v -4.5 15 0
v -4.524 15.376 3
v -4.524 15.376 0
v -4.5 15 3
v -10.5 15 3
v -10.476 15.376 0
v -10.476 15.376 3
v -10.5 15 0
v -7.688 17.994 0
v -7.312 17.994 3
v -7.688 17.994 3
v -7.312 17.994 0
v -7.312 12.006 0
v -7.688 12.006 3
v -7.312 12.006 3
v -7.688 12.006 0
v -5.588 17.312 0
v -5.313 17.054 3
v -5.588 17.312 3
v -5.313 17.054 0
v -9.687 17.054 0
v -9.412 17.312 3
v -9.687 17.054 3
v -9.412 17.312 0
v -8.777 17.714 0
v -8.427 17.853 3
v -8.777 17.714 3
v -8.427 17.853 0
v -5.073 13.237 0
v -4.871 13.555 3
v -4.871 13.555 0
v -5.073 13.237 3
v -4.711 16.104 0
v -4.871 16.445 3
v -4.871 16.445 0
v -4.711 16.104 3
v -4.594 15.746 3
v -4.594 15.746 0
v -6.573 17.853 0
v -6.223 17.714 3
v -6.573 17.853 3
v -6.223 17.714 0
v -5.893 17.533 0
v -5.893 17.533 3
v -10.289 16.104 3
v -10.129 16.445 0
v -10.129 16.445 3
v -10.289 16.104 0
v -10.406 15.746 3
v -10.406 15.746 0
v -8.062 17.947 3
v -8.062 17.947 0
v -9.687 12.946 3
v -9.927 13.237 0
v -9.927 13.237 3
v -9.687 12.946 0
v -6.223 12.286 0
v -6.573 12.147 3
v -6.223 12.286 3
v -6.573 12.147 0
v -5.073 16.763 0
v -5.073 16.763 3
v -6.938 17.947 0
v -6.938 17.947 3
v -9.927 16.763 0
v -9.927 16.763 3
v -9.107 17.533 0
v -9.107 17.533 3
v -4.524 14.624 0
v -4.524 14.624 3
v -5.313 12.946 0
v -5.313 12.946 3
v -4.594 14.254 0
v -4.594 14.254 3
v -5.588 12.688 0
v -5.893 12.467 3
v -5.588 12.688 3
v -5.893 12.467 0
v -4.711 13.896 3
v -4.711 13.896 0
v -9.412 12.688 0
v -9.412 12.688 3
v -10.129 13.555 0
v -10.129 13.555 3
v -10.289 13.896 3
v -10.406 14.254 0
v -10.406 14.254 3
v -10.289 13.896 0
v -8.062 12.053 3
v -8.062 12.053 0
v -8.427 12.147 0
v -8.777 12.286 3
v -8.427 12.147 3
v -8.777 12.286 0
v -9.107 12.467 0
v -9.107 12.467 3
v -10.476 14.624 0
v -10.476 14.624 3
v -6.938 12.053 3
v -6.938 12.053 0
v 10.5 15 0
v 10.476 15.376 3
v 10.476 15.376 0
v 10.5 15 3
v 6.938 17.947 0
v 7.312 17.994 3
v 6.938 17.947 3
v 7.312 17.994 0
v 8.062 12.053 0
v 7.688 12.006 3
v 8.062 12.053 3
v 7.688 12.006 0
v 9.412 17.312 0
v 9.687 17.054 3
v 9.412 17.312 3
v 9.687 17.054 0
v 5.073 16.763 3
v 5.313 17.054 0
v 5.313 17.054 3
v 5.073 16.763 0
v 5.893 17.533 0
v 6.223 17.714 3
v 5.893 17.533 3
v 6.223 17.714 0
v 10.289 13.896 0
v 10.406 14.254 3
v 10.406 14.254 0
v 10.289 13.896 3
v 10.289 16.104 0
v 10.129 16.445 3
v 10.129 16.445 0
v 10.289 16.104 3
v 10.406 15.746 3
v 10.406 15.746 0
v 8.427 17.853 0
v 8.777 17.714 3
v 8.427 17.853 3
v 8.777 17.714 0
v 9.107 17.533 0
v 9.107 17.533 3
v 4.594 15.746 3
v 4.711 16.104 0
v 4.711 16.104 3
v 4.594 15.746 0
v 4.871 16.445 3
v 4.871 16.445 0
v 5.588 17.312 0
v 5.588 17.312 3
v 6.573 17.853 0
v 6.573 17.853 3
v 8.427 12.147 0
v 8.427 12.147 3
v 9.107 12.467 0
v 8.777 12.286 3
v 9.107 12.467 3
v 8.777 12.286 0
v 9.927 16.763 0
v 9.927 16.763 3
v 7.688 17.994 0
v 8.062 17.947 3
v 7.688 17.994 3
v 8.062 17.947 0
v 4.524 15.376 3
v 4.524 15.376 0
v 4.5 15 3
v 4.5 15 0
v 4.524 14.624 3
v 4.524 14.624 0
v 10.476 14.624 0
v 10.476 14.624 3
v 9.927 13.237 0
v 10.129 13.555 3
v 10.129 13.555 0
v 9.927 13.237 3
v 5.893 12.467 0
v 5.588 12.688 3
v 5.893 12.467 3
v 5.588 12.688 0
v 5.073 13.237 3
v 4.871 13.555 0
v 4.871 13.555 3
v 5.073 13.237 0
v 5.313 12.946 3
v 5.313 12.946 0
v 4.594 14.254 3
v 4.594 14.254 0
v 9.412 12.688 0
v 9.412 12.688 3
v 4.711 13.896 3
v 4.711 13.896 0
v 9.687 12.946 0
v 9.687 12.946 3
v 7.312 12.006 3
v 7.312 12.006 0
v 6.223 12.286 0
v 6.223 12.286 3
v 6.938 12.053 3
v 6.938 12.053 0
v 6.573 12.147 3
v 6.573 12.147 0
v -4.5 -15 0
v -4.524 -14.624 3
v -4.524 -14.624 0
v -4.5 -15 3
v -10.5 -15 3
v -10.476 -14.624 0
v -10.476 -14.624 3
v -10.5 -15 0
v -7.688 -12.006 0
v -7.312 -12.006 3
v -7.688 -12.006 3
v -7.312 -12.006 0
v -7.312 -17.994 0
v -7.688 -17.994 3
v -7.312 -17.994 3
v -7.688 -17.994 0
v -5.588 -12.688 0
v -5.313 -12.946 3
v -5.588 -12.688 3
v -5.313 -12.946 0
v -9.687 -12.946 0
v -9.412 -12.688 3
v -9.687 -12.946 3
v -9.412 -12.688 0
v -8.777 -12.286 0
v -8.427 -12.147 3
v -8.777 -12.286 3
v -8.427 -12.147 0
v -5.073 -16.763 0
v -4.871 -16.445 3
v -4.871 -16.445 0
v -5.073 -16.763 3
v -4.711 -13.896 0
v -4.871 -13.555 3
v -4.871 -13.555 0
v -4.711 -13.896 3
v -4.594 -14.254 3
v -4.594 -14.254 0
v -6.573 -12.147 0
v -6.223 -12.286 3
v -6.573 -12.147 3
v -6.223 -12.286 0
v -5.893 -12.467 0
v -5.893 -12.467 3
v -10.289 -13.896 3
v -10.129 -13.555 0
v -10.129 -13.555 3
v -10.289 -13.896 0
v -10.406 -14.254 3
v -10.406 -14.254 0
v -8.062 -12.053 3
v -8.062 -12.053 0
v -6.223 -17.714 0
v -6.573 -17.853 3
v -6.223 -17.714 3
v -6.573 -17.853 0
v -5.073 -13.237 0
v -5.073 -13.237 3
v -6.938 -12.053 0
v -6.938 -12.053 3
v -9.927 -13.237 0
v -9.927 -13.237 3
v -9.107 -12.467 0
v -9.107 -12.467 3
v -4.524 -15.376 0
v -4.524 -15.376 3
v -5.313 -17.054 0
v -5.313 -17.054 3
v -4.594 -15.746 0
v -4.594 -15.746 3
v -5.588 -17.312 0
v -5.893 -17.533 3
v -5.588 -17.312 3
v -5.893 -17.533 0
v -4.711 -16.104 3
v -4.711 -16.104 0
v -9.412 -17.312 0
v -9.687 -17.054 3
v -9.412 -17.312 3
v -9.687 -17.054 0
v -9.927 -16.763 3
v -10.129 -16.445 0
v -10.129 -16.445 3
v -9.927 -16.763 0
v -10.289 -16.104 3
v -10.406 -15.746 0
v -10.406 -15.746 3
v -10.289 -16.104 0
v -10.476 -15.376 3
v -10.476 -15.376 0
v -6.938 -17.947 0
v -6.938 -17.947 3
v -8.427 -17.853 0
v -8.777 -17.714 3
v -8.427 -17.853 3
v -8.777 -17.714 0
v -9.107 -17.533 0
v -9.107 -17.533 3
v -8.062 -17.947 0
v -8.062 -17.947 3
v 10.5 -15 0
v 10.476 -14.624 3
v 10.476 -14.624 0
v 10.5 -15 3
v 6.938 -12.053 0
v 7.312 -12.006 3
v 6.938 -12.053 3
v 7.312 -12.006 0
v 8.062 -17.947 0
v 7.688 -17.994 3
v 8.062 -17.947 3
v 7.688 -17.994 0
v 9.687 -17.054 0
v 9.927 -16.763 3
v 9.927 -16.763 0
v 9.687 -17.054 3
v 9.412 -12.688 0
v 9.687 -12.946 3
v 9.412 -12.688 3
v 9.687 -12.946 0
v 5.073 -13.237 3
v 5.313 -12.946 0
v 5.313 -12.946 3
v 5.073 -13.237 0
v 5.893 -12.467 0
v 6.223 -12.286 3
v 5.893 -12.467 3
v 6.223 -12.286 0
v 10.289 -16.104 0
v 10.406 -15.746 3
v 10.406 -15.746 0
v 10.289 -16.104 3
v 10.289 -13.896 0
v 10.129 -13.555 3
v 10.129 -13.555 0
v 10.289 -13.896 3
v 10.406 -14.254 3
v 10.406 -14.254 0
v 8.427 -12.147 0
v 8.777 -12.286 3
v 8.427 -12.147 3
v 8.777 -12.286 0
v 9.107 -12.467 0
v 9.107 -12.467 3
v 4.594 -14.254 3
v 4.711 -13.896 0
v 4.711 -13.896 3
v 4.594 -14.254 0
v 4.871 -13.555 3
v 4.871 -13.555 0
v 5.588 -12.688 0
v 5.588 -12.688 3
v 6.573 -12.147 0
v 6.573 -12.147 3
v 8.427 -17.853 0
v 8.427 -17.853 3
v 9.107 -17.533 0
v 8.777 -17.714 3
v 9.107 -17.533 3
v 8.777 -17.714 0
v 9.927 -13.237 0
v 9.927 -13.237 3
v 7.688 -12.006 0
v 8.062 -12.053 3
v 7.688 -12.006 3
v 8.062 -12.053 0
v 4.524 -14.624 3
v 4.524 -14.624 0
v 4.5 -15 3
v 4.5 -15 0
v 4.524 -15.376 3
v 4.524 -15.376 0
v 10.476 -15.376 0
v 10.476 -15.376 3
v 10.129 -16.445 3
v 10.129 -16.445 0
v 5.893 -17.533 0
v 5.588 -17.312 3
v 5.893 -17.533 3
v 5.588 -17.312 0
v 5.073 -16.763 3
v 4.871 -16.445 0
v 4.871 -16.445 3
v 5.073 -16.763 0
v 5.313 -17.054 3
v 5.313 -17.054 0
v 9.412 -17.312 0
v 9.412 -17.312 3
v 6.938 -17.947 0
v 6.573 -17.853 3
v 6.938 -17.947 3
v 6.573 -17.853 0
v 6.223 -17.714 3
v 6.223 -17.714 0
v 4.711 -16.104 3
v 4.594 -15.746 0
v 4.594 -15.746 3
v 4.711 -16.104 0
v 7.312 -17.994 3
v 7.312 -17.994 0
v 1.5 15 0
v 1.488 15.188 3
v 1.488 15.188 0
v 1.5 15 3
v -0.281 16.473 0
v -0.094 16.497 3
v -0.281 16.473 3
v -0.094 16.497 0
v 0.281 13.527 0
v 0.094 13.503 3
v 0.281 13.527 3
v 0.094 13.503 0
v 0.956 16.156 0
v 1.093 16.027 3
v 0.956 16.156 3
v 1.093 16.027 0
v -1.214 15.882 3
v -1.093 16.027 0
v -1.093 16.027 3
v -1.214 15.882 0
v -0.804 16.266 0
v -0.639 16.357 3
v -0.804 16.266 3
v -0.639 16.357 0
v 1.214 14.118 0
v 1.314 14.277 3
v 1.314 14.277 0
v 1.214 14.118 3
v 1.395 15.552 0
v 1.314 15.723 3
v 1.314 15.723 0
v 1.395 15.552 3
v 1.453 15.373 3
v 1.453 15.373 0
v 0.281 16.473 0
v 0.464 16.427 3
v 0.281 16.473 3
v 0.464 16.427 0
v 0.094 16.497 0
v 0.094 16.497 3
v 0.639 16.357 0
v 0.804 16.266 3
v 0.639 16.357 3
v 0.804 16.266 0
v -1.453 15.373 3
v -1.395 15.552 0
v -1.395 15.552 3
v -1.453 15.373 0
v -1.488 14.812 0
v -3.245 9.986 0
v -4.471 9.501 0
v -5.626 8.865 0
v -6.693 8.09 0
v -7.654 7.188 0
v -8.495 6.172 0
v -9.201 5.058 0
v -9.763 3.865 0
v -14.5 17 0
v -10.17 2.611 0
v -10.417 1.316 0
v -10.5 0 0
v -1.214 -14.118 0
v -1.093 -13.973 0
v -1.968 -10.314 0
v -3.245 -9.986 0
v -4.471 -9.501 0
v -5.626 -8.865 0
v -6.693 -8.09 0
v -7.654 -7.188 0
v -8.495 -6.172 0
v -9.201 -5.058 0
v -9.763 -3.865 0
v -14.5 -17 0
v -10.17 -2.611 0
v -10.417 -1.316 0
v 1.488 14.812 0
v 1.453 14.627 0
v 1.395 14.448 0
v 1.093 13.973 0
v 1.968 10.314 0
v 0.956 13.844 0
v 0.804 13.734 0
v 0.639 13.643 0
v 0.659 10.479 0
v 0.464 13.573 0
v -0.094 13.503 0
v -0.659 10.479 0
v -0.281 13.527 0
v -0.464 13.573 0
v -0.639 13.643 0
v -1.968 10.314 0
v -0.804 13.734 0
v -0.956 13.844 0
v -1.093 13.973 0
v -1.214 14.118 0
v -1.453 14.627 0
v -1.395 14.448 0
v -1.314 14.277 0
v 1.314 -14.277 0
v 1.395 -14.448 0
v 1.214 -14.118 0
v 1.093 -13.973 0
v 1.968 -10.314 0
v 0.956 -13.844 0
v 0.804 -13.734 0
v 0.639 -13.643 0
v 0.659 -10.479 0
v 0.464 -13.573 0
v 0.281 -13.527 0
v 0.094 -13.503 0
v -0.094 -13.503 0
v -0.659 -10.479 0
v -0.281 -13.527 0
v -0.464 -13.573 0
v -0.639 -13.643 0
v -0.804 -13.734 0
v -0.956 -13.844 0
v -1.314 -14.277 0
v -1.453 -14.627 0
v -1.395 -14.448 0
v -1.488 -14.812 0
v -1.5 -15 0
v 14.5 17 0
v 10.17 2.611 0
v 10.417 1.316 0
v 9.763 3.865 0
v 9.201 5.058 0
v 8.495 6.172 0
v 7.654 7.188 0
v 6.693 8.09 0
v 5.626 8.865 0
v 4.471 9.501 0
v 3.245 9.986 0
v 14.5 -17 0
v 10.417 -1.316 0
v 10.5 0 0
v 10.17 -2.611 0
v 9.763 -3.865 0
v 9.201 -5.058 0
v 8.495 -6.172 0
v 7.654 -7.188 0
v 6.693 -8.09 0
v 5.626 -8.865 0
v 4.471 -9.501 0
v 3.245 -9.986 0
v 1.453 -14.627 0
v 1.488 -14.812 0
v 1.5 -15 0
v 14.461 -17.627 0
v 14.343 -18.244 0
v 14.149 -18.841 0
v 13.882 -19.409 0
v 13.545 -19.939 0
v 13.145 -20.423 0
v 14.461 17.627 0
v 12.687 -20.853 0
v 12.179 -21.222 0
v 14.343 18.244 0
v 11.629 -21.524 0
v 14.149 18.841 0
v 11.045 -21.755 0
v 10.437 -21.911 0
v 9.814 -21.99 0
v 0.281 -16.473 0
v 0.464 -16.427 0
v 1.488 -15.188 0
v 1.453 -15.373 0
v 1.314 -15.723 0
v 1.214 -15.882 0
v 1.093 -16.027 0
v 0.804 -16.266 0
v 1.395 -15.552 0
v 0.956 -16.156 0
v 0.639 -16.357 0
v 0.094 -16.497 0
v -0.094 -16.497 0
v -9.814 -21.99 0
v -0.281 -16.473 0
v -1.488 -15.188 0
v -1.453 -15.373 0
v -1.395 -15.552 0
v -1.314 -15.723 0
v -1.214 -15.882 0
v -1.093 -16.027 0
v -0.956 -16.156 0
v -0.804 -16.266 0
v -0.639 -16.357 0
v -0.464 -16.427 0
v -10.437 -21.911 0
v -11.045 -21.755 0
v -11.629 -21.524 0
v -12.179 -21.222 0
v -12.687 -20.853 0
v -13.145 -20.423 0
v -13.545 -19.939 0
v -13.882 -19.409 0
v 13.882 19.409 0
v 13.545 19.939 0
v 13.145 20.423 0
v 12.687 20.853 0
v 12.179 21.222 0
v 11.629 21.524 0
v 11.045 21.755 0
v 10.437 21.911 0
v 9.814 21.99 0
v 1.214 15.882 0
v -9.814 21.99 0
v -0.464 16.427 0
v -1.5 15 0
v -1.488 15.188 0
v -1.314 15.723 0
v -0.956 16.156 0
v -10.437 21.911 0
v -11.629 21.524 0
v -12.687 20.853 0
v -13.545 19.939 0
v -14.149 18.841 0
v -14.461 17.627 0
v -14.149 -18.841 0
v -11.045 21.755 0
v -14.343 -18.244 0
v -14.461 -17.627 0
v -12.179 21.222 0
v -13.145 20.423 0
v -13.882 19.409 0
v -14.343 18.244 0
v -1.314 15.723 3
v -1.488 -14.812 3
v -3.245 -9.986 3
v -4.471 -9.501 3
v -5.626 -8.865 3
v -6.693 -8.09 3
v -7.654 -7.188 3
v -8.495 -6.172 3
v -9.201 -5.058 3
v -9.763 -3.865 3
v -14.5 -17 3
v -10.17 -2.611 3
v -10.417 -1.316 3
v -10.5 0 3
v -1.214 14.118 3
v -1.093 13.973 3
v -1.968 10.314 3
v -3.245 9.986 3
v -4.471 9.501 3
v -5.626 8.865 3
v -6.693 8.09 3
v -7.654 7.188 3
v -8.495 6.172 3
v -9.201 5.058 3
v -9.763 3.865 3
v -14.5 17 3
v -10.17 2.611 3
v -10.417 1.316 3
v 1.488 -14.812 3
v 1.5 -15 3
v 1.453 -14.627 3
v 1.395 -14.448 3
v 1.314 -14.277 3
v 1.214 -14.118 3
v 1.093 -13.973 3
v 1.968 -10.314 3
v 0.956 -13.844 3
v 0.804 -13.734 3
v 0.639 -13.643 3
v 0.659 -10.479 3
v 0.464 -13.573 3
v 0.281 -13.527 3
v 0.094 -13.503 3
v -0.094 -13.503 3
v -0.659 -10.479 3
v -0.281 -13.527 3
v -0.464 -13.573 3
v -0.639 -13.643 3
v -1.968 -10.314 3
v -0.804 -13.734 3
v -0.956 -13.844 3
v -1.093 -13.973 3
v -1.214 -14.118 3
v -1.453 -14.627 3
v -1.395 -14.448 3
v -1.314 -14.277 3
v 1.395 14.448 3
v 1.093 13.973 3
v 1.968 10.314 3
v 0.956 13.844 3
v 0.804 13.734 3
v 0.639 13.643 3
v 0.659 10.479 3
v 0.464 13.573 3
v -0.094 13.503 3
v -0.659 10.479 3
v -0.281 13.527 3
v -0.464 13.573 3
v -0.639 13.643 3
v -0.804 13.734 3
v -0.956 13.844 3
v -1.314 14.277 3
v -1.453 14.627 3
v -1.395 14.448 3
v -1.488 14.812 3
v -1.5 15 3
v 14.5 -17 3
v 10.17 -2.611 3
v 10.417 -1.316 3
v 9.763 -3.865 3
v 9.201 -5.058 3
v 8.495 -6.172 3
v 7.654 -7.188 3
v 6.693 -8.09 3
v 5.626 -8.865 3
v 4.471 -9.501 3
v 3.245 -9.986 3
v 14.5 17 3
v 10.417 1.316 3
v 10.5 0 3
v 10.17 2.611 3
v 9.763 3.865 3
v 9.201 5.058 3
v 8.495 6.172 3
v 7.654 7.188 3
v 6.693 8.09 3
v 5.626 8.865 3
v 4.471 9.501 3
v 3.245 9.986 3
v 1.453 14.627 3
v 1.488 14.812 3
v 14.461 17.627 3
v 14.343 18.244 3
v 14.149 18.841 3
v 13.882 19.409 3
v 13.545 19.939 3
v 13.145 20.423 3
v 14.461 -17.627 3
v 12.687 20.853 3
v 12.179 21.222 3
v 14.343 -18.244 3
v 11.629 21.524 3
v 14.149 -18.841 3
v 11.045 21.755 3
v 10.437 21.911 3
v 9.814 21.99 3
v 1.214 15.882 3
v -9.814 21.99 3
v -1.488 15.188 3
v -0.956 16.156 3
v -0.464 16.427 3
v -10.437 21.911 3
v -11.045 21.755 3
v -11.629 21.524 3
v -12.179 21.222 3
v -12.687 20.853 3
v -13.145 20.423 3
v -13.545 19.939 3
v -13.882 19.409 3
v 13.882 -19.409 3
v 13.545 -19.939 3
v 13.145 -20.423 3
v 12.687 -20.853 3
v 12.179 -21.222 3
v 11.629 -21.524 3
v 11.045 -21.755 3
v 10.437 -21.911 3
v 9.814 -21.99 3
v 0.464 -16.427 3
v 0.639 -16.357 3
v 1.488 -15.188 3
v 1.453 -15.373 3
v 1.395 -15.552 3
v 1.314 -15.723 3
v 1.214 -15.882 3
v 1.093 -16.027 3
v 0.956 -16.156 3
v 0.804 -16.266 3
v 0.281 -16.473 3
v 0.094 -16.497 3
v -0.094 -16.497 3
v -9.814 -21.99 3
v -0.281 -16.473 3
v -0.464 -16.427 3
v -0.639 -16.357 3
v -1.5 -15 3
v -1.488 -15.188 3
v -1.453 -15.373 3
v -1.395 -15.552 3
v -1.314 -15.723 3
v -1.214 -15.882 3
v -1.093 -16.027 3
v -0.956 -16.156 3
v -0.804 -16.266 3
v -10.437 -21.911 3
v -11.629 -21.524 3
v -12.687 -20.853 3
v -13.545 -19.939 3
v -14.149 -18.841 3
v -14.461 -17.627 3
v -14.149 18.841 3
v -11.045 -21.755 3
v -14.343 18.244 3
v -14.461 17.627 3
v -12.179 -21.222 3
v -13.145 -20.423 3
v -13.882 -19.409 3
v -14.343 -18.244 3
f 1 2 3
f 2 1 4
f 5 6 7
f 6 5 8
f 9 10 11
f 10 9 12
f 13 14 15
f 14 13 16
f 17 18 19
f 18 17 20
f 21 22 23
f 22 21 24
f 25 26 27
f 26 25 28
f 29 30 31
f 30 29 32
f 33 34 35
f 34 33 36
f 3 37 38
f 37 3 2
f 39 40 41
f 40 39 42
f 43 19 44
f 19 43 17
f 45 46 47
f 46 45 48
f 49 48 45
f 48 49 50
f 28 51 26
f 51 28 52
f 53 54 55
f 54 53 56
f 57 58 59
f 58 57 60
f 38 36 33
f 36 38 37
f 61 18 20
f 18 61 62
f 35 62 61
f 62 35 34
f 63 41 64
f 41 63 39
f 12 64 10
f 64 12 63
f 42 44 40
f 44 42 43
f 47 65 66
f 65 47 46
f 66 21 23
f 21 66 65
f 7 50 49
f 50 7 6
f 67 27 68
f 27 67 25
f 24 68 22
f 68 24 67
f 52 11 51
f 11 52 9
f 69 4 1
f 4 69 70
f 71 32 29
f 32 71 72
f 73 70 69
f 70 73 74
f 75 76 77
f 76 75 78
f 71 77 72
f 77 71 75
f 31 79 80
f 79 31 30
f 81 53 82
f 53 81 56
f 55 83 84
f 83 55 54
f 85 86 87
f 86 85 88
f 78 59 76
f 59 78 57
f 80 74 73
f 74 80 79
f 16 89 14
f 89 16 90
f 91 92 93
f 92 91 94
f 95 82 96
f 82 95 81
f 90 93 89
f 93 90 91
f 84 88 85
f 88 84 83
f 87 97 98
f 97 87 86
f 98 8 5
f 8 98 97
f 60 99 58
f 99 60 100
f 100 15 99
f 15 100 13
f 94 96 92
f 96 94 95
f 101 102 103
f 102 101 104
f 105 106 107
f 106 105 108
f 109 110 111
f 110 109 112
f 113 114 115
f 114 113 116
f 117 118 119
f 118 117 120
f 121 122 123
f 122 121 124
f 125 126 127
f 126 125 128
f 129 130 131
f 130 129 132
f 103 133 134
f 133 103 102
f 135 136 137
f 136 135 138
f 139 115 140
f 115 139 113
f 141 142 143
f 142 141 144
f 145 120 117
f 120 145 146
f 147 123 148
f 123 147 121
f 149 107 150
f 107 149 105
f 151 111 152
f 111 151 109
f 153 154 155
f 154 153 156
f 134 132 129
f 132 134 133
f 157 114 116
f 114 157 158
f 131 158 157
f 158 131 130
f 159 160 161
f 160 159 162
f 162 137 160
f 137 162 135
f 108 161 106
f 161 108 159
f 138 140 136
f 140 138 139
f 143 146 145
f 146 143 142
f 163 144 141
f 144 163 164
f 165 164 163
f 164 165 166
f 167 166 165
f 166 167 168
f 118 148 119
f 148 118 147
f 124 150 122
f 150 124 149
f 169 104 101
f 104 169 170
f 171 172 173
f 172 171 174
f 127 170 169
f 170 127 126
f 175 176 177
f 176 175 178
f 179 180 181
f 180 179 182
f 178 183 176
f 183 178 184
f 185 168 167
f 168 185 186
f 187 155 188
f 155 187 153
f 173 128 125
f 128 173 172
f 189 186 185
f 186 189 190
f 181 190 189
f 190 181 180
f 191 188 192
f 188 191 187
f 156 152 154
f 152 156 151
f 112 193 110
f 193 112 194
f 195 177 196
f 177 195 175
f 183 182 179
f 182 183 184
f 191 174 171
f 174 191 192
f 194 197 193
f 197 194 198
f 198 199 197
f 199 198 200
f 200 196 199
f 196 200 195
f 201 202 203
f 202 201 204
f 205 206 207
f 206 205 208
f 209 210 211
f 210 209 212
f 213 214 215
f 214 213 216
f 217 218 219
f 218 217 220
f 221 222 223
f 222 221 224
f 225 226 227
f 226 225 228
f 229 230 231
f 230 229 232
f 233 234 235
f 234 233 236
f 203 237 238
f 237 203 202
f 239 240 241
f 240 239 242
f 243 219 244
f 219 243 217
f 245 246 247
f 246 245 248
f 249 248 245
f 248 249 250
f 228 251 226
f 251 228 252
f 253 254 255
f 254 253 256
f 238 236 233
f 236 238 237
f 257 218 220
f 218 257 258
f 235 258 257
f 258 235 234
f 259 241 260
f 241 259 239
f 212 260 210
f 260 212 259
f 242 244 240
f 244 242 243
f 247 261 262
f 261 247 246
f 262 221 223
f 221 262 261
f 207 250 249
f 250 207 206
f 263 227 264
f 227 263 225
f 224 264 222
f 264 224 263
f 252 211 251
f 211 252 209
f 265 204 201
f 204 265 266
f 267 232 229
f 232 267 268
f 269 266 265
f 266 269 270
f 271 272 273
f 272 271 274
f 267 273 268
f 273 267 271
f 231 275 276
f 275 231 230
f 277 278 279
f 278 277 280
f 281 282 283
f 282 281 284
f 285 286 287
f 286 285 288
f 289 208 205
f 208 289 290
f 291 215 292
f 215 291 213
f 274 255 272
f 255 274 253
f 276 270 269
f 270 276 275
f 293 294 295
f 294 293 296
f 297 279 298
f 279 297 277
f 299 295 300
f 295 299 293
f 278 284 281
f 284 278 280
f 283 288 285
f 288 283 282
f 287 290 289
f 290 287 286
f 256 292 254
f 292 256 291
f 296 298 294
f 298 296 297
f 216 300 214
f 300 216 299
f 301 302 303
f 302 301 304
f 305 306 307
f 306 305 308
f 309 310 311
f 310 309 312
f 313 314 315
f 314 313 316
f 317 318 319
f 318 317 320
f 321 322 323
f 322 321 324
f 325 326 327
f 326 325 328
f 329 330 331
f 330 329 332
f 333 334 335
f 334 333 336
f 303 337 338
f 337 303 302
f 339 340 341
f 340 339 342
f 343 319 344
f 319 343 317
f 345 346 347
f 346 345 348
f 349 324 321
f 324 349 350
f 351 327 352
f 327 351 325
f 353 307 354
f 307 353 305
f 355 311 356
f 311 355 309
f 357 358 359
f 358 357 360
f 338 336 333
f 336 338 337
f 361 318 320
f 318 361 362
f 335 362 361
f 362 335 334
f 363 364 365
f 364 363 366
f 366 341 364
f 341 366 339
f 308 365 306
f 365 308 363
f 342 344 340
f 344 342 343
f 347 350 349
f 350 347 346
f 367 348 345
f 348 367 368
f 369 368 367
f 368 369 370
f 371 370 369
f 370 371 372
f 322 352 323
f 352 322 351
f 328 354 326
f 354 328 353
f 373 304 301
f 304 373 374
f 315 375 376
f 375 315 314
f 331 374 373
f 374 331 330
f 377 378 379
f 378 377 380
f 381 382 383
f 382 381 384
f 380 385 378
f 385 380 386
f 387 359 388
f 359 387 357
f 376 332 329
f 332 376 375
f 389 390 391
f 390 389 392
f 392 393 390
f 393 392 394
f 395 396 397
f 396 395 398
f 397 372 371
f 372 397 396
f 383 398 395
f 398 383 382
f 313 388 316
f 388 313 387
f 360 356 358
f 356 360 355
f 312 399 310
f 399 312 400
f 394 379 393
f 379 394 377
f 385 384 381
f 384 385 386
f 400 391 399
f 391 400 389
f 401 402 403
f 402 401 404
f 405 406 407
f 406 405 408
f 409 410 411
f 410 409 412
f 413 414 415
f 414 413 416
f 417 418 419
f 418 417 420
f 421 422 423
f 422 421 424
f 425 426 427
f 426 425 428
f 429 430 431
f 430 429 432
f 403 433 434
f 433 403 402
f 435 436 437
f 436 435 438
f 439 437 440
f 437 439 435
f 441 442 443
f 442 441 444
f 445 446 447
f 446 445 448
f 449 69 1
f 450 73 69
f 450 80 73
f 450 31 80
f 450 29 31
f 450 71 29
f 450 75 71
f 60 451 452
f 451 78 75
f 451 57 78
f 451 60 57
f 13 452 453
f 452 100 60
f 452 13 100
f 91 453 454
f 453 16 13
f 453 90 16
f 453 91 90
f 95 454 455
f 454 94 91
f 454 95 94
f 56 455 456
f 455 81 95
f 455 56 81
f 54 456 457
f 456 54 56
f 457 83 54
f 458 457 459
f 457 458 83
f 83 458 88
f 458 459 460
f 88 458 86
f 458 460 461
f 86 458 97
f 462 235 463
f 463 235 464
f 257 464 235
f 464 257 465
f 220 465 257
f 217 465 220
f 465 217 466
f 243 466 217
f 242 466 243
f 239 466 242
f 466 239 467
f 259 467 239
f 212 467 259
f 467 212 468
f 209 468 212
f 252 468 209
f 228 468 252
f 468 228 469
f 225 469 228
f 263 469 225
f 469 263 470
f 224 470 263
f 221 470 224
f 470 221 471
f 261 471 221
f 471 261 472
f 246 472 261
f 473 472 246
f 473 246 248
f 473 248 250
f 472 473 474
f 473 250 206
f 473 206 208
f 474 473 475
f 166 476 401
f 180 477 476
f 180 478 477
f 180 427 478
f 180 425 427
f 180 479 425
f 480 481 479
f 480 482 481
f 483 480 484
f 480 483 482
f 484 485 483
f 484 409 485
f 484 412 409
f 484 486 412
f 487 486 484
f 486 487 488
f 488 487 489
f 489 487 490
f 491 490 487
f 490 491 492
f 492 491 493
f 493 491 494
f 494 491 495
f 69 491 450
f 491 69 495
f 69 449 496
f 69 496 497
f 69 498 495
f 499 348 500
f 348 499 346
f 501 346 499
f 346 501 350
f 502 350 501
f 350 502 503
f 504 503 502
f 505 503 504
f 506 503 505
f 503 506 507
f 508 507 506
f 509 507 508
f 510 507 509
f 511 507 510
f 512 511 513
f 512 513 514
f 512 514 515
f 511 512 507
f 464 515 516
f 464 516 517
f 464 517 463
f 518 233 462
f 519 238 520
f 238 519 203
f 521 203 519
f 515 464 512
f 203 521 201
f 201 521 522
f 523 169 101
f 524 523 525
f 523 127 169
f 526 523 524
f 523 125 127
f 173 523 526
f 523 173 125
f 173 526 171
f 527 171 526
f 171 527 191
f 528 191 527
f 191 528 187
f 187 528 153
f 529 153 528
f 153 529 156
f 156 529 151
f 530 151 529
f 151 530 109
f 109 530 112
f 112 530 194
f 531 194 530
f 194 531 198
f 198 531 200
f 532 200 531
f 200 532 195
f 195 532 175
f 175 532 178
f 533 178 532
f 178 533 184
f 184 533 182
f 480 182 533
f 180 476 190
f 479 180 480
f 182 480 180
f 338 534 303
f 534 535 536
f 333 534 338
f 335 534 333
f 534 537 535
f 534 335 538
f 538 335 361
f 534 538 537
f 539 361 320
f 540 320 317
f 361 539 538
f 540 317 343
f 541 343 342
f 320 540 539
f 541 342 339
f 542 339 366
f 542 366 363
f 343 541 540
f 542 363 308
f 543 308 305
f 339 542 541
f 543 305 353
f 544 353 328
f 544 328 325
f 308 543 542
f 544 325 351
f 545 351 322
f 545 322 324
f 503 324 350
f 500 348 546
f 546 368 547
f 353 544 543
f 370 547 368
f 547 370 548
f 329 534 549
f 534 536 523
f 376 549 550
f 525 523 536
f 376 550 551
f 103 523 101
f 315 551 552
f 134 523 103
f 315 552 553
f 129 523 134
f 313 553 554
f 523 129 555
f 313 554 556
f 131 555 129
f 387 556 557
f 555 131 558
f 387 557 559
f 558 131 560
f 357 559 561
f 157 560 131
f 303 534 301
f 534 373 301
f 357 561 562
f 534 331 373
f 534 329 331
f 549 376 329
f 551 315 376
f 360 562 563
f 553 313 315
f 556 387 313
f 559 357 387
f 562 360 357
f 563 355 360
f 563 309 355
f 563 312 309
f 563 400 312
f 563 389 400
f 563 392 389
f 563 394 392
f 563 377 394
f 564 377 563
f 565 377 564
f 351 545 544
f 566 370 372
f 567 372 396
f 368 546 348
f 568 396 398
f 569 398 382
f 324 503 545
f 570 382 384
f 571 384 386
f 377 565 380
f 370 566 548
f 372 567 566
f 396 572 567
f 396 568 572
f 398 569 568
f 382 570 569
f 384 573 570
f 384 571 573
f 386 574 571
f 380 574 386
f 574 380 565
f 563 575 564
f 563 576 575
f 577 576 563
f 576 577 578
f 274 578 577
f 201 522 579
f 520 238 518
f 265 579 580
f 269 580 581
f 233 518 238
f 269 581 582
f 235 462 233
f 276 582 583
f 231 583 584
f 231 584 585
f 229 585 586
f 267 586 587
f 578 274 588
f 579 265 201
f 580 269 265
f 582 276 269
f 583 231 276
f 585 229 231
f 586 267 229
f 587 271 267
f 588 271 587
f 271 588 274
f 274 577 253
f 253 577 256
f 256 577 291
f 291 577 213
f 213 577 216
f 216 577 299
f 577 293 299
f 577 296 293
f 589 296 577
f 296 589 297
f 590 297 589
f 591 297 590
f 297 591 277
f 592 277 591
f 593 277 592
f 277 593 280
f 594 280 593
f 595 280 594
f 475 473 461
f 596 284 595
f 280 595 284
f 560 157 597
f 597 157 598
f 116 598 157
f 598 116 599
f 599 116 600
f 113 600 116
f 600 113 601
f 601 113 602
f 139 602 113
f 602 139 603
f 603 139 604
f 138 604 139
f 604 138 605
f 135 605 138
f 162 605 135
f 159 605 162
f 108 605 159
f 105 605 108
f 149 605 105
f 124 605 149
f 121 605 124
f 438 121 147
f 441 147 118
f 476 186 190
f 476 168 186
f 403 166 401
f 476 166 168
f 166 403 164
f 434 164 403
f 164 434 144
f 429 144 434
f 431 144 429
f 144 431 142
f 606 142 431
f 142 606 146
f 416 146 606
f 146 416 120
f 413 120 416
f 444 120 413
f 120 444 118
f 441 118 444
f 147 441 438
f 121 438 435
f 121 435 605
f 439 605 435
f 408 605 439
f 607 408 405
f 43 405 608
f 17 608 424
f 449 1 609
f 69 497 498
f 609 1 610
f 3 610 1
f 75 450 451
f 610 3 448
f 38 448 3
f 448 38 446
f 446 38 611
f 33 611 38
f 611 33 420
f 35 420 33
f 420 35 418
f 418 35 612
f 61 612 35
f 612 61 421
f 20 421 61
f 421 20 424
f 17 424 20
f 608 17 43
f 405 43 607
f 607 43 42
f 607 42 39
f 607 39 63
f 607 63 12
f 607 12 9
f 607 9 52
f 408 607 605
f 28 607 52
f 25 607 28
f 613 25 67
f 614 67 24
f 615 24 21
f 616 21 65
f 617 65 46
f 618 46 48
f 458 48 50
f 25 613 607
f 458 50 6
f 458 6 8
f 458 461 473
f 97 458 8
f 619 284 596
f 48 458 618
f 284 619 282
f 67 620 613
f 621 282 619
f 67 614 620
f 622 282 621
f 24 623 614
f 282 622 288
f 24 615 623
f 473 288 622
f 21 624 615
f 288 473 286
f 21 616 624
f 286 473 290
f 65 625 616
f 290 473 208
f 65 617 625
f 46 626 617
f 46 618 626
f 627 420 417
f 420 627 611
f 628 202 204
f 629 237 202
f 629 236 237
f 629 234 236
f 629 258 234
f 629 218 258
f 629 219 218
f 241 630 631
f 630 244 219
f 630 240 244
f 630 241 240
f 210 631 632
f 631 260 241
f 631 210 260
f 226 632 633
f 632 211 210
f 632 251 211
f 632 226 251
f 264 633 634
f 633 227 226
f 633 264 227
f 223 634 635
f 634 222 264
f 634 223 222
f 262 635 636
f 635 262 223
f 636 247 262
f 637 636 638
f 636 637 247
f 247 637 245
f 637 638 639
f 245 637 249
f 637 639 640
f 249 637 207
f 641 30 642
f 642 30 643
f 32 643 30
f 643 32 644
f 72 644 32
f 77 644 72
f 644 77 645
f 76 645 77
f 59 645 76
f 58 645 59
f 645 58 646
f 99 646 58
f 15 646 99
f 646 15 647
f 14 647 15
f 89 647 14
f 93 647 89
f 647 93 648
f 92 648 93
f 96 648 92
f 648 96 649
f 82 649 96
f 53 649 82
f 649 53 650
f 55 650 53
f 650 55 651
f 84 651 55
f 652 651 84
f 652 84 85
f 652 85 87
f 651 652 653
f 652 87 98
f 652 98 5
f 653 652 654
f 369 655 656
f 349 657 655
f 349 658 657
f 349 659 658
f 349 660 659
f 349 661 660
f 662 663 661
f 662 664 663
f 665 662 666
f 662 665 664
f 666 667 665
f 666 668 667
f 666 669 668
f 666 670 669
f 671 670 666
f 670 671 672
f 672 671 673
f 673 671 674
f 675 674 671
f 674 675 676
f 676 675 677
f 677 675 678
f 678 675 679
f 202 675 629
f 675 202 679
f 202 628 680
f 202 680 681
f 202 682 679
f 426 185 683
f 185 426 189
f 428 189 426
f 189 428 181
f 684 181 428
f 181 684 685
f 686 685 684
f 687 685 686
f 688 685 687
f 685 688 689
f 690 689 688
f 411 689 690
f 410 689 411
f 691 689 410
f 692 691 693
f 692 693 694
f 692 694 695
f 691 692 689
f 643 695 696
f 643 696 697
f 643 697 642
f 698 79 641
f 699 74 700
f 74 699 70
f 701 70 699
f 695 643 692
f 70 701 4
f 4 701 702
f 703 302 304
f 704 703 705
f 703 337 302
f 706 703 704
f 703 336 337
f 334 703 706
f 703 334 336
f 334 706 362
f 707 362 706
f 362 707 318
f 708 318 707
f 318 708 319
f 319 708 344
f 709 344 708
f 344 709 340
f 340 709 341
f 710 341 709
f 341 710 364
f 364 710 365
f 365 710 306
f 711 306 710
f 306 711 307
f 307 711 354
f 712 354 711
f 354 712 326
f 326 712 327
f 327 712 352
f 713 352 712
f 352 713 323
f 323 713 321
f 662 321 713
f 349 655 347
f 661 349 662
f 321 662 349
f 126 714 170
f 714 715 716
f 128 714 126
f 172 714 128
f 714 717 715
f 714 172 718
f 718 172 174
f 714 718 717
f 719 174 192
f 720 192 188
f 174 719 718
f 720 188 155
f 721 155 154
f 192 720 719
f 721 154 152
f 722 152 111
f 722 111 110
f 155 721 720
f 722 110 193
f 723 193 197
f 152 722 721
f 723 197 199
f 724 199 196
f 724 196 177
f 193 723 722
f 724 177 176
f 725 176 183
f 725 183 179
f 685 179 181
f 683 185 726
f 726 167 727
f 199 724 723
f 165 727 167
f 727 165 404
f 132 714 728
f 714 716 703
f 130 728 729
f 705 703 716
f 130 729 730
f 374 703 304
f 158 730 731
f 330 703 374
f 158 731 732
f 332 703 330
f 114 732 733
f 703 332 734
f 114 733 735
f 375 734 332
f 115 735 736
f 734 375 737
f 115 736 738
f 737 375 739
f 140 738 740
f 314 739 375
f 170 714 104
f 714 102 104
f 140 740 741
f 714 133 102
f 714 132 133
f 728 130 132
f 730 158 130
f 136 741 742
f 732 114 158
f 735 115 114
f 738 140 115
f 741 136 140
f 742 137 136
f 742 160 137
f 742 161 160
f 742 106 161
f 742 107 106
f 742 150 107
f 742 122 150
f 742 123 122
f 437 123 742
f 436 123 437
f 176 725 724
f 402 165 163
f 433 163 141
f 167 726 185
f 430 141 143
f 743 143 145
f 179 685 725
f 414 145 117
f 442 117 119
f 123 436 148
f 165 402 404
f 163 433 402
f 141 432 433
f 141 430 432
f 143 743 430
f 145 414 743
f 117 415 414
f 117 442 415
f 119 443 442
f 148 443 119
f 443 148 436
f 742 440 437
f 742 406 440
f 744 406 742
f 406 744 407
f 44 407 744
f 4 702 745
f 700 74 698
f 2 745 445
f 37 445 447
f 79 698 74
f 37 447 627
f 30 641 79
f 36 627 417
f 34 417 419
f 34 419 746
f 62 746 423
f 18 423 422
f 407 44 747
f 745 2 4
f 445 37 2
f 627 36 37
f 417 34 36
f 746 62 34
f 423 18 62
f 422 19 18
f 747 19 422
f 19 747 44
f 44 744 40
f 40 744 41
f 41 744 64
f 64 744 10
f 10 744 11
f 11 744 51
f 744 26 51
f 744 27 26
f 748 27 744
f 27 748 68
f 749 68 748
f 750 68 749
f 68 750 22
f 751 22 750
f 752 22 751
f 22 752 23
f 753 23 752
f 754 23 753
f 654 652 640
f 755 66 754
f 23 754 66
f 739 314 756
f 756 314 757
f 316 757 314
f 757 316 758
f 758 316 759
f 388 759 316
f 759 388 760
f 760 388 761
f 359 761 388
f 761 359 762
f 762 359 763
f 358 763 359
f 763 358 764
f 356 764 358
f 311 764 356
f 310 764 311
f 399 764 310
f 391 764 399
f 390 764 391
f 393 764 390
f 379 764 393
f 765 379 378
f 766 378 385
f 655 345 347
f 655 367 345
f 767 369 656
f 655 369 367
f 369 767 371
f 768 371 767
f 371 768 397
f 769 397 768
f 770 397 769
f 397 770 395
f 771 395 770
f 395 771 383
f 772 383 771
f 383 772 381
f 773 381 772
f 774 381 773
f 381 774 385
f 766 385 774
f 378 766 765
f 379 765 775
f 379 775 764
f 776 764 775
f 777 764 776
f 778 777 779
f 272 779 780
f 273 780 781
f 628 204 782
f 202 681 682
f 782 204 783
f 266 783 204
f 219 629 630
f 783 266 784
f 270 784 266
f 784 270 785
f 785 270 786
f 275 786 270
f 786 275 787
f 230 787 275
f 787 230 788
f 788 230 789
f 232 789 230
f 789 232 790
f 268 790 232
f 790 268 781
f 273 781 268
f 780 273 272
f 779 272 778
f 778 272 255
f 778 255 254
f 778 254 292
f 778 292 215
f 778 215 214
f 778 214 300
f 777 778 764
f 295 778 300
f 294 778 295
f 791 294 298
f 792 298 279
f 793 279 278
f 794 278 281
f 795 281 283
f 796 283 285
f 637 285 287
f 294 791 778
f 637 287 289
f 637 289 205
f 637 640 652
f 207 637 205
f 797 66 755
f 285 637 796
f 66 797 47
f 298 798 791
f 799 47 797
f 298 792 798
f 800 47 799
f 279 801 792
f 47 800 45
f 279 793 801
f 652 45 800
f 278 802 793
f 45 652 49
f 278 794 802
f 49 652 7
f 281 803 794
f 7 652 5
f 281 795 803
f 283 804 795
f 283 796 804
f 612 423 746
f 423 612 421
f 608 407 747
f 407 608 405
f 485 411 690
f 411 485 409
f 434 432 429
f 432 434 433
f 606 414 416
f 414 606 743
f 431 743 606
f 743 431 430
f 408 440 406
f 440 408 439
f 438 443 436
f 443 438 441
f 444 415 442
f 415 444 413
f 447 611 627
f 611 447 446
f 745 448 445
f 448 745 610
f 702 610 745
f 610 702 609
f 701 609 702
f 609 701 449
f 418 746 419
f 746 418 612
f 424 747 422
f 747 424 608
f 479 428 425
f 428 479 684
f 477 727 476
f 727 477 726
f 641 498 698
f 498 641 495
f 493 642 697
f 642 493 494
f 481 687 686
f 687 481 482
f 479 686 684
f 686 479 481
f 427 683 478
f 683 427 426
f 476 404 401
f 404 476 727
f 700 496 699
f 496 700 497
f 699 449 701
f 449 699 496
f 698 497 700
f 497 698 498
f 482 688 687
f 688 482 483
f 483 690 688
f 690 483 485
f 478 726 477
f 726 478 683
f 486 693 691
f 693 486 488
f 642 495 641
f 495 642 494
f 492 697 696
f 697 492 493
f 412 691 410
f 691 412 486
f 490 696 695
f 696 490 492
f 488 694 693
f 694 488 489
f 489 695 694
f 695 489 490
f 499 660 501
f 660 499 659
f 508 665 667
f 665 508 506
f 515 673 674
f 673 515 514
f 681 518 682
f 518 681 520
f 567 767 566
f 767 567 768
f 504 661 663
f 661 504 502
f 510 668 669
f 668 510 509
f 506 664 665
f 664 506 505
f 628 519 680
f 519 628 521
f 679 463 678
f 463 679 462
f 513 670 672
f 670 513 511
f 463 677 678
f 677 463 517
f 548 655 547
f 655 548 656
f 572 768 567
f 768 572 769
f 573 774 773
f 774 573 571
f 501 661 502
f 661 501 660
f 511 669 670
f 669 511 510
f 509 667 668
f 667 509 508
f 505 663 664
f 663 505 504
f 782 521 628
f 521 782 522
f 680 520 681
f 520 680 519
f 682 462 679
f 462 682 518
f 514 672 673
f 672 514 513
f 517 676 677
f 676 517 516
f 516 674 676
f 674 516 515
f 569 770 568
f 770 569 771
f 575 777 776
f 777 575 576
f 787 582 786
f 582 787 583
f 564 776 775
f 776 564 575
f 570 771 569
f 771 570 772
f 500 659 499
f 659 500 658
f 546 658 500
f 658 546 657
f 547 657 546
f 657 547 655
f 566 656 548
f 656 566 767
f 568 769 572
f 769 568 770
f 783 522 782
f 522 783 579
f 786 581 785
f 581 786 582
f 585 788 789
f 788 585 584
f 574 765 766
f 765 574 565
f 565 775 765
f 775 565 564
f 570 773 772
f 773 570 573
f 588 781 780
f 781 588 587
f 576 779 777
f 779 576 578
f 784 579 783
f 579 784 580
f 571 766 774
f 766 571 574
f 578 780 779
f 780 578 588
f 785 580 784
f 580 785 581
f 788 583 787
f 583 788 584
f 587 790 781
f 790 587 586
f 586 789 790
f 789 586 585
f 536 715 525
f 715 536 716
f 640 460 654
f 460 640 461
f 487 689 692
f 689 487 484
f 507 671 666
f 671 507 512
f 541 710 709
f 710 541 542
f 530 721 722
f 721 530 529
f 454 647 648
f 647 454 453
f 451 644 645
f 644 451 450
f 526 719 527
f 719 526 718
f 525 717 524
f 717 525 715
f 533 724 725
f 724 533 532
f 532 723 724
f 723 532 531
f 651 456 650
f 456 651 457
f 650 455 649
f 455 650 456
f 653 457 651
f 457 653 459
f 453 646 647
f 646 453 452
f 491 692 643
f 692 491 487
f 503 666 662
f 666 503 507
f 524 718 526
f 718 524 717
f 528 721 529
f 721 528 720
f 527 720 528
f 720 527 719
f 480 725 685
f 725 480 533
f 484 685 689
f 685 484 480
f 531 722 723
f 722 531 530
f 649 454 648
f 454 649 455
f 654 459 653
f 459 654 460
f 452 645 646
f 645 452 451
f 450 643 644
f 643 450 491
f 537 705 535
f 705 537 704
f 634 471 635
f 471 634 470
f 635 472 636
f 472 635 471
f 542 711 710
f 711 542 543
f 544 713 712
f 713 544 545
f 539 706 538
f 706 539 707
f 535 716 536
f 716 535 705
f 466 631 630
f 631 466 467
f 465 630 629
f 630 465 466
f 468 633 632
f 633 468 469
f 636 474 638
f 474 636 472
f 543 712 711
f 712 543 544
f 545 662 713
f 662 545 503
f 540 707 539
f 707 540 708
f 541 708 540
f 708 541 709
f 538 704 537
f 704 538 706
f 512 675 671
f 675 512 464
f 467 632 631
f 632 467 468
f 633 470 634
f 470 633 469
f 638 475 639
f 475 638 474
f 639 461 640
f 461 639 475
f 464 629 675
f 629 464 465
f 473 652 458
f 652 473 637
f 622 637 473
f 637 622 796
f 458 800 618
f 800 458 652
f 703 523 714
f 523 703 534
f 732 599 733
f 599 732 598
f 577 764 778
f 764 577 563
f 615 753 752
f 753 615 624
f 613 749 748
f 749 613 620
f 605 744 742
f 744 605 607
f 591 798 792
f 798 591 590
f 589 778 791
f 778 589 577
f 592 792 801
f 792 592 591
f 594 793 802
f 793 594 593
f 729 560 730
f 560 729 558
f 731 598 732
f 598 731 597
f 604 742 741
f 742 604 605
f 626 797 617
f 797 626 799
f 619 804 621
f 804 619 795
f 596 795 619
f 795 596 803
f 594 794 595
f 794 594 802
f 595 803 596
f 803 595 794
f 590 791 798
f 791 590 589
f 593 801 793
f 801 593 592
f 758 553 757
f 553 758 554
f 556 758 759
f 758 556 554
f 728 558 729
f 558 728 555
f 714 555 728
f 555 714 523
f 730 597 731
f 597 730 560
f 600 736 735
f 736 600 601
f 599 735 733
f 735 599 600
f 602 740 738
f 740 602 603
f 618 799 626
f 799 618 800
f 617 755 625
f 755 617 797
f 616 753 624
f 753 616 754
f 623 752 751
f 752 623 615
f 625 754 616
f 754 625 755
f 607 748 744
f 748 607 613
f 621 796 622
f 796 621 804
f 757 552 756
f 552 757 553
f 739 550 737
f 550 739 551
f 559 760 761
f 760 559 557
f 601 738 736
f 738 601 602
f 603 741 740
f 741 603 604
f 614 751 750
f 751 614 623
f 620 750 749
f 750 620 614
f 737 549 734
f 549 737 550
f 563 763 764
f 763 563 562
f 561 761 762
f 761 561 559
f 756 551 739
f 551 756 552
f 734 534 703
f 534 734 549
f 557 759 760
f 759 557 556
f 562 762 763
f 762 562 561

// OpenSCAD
$fn = 50;


difference() {
	union() {
		hull() {
			translate(v = [-9.5000000000, 17.0000000000, 0]) {
				cylinder(h = 3, r = 5);
			}
			translate(v = [9.5000000000, 17.0000000000, 0]) {
				cylinder(h = 3, r = 5);
			}
			translate(v = [-9.5000000000, -17.0000000000, 0]) {
				cylinder(h = 3, r = 5);
			}
			translate(v = [9.5000000000, -17.0000000000, 0]) {
				cylinder(h = 3, r = 5);
			}
		}
	}
	union() {
		#translate(v = [-7.5000000000, 15.0000000000, 0]) {
			cylinder(h = 3, r = 3.0000000000);
		}
		#translate(v = [7.5000000000, 15.0000000000, 0]) {
			cylinder(h = 3, r = 3.0000000000);
		}
		#translate(v = [-7.5000000000, -15.0000000000, 0]) {
			cylinder(h = 3, r = 3.0000000000);
		}
		#translate(v = [7.5000000000, -15.0000000000, 0]) {
			cylinder(h = 3, r = 3.0000000000);
		}
		#translate(v = [-7.5000000000, -15.0000000000, -100.0000000000]) {
			cylinder(h = 200, r = 3.0000000000);
		}
		#translate(v = [-7.5000000000, 15.0000000000, -100.0000000000]) {
			cylinder(h = 200, r = 3.0000000000);
		}
		#translate(v = [7.5000000000, -15.0000000000, -100.0000000000]) {
			cylinder(h = 200, r = 3.0000000000);
		}
		#translate(v = [7.5000000000, 15.0000000000, -100.0000000000]) {
			cylinder(h = 200, r = 3.0000000000);
		}
		#translate(v = [-7.5000000000, 15.0000000000, 0]) {
			cylinder(h = 3, r = 1.5000000000);
		}
		#translate(v = [0.0000000000, 15.0000000000, 0]) {
			cylinder(h = 3, r = 1.5000000000);
		}
		#translate(v = [7.5000000000, 15.0000000000, 0]) {
			cylinder(h = 3, r = 1.5000000000);
		}
		#translate(v = [-7.5000000000, -15.0000000000, 0]) {
			cylinder(h = 3, r = 1.5000000000);
		}
		#translate(v = [0.0000000000, -15.0000000000, 0]) {
			cylinder(h = 3, r = 1.5000000000);
		}
		#translate(v = [7.5000000000, -15.0000000000, 0]) {
			cylinder(h = 3, r = 1.5000000000);
		}
		#translate(v = [-7.5000000000, 15.0000000000, 0]) {
			cylinder(h = 3, r = 1.5000000000);
		}
		#translate(v = [0.0000000000, 15.0000000000, 0]) {
			cylinder(h = 3, r = 1.5000000000);
		}
		#translate(v = [7.5000000000, 15.0000000000, 0]) {
			cylinder(h = 3, r = 1.5000000000);
		}
		#translate(v = [-7.5000000000, -15.0000000000, 0]) {
			cylinder(h = 3, r = 1.5000000000);
		}
		#translate(v = [0.0000000000, -15.0000000000, 0]) {
			cylinder(h = 3, r = 1.5000000000);
		}
		#translate(v = [7.5000000000, -15.0000000000, 0]) {
			cylinder(h = 3, r = 1.5000000000);
		}
		#translate(v = [-7.5000000000, 15.0000000000, 0]) {
			cylinder(h = 3, r = 1.5000000000);
		}
		#translate(v = [0.0000000000, 15.0000000000, 0]) {
			cylinder(h = 3, r = 1.5000000000);
		}
		#translate(v = [7.5000000000, 15.0000000000, 0]) {
			cylinder(h = 3, r = 1.5000000000);
		}
		#translate(v = [-7.5000000000, -15.0000000000, 0]) {
			cylinder(h = 3, r = 1.5000000000);
		}
		#translate(v = [0.0000000000, -15.0000000000, 0]) {
			cylinder(h = 3, r = 1.5000000000);
		}
		#translate(v = [7.5000000000, -15.0000000000, 0]) {
			cylinder(h = 3, r = 1.5000000000);
		}
		#cylinder(h = 3, r = 10.5000000000);
	}
}
